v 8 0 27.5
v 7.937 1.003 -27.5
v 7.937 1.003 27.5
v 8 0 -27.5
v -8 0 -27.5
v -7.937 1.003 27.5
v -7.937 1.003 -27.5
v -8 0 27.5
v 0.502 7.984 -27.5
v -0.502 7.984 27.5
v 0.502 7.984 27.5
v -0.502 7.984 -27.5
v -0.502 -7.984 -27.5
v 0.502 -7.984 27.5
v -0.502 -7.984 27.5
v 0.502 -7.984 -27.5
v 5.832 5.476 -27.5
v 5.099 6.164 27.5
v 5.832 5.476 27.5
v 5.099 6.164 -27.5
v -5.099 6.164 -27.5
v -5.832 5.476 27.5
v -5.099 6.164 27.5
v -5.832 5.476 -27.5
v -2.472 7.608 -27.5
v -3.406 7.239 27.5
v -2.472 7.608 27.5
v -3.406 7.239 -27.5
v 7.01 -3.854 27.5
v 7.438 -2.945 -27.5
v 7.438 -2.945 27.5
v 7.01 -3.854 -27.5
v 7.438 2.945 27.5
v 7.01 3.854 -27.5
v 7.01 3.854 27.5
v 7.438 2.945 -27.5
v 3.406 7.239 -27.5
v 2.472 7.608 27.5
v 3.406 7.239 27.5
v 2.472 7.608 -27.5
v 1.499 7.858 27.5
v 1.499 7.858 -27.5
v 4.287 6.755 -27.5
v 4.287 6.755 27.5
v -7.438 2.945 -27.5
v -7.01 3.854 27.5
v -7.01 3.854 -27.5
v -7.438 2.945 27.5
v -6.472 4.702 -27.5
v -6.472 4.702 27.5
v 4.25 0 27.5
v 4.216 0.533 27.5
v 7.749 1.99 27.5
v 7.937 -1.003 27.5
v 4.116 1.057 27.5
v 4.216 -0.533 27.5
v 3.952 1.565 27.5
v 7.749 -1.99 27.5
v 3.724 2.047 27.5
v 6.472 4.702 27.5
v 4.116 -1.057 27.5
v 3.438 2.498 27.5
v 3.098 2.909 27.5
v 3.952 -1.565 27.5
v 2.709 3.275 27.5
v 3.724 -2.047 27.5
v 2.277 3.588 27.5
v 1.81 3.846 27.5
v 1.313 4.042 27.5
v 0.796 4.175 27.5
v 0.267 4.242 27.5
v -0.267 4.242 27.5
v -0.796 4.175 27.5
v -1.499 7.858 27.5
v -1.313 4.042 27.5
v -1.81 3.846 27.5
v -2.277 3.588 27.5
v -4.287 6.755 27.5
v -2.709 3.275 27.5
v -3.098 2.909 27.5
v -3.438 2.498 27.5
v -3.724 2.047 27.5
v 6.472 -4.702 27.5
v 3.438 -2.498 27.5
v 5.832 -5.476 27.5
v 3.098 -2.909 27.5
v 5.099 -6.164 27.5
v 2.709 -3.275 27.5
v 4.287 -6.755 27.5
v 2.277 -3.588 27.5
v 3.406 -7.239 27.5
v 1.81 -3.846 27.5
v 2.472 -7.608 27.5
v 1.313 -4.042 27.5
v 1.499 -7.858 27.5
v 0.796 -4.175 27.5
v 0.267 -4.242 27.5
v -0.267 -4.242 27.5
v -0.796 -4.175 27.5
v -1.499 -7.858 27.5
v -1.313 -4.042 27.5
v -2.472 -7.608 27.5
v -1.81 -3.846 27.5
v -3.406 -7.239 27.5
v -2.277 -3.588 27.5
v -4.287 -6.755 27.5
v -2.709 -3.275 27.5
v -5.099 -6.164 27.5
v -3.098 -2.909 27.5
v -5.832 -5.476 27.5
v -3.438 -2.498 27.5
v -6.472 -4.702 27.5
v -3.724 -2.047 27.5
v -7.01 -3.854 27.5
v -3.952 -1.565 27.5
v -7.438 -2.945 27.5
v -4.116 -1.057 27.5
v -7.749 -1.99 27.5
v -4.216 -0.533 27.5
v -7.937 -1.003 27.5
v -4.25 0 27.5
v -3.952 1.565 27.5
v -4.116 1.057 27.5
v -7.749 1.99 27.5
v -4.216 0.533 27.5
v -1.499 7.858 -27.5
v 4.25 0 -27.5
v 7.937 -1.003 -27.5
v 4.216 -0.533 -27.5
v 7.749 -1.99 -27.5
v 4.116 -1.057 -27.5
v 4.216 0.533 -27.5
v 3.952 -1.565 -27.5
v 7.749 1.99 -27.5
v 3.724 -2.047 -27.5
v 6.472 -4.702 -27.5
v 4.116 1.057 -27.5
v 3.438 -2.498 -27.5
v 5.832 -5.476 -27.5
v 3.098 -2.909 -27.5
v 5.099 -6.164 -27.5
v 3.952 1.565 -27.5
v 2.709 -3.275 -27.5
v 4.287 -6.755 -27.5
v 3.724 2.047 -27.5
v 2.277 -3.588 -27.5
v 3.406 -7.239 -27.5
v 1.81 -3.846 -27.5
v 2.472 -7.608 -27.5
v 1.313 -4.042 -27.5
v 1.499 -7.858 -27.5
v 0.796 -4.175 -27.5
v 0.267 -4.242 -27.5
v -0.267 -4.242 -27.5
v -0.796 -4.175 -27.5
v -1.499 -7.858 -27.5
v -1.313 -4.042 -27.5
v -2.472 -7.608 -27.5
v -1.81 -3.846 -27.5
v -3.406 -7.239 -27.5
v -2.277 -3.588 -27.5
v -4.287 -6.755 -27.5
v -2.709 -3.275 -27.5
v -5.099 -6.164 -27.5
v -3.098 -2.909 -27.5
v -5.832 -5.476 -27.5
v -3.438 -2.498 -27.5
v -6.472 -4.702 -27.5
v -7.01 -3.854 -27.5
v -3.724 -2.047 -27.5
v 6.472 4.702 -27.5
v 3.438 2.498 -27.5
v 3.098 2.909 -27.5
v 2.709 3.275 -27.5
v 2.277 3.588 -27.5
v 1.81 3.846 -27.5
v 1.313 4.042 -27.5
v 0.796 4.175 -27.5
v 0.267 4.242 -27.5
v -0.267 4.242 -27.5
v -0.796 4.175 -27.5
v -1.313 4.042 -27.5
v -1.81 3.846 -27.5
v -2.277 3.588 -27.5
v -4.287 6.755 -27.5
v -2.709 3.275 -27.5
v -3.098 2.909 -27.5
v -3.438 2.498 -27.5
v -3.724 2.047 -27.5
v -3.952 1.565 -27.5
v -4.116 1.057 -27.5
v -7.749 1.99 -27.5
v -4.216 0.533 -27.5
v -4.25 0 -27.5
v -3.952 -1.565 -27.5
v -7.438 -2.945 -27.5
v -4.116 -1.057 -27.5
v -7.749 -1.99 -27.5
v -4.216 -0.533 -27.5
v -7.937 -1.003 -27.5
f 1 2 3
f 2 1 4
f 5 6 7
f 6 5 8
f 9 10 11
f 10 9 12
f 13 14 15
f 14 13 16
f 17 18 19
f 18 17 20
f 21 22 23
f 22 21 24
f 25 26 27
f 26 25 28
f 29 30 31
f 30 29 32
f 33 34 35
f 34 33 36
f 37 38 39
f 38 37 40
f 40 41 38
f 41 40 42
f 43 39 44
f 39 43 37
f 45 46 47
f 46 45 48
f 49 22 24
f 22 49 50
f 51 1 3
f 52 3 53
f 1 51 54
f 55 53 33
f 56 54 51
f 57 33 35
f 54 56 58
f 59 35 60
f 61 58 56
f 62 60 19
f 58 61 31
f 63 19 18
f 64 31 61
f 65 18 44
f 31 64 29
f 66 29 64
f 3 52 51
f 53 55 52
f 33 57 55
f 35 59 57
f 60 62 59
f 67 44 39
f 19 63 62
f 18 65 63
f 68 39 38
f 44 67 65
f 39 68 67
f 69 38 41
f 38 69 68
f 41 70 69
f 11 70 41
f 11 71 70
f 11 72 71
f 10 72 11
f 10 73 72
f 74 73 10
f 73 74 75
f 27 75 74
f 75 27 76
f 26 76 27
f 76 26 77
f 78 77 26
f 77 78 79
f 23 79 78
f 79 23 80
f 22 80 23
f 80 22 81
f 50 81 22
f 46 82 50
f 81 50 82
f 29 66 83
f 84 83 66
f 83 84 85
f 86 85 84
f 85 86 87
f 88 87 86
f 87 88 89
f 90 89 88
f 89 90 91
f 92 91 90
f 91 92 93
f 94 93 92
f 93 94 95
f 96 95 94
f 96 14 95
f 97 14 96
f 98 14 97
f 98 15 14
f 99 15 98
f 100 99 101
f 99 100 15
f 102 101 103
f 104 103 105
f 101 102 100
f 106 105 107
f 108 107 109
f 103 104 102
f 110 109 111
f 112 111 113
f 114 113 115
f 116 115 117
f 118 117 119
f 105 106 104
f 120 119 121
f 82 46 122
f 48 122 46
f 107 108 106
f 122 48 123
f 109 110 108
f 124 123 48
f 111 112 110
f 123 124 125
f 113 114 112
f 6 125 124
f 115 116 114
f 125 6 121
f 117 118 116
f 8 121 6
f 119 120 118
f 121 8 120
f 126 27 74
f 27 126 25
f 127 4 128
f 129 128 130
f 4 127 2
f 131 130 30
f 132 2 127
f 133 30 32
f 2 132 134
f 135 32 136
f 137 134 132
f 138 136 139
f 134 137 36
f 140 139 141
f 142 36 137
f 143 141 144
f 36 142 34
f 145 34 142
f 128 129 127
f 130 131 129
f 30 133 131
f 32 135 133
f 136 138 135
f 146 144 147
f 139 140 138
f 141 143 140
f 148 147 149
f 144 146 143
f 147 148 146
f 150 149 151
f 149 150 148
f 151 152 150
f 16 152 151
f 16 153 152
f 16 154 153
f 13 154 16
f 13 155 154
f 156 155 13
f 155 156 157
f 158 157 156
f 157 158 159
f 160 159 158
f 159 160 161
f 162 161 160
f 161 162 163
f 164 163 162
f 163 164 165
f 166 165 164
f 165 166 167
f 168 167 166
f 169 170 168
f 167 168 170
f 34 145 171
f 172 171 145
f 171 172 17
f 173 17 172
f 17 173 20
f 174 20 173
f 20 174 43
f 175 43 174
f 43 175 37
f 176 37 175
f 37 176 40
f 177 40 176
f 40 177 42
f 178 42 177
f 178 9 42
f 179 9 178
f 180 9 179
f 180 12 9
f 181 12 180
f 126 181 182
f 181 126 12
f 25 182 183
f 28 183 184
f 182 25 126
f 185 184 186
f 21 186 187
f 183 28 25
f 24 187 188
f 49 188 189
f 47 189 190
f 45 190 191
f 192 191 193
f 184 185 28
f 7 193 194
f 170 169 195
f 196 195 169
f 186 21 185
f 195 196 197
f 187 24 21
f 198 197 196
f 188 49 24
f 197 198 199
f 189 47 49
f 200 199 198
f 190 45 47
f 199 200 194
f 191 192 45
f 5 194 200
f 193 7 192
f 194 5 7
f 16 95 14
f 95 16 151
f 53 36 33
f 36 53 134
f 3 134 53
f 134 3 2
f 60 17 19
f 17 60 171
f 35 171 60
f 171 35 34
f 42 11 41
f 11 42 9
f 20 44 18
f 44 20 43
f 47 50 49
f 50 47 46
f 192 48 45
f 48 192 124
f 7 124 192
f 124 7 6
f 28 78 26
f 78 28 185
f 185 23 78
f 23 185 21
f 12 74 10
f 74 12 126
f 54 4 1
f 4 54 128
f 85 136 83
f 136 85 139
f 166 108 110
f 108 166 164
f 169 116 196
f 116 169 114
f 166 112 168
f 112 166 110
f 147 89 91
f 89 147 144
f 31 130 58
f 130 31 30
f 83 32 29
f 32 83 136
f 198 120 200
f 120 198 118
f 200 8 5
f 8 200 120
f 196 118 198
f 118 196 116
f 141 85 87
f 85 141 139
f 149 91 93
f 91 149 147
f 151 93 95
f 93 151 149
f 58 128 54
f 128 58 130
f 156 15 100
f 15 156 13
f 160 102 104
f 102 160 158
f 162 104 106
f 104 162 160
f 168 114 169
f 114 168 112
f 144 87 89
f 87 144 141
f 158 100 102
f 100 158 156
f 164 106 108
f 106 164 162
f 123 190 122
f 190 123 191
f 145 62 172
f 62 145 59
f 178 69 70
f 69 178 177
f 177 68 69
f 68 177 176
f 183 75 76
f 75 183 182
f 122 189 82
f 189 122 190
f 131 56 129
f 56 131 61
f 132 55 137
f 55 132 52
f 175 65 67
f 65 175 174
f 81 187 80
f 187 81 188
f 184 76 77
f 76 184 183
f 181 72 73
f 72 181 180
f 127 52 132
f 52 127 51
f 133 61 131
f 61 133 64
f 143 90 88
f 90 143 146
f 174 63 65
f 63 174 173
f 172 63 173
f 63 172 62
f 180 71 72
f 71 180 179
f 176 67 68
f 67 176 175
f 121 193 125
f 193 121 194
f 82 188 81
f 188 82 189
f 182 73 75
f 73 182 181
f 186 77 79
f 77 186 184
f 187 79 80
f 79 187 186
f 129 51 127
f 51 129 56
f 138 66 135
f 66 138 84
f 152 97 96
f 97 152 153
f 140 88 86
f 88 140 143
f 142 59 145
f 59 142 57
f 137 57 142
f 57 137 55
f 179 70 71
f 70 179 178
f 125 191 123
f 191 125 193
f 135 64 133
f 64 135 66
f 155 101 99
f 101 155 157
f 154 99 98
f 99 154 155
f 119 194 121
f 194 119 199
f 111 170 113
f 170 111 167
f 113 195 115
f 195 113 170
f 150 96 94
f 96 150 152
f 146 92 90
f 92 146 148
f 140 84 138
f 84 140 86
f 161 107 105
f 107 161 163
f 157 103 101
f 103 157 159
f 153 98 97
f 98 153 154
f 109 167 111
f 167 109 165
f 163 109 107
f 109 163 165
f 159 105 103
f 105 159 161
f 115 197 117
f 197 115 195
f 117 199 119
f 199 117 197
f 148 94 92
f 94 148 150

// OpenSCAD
$fn = 50;


difference() {
	union() {
		translate(v = [0, 0, -27.5000000000]) {
			cylinder(h = 55, r = 8.0000000000);
		}
	}
	union() {
		translate(v = [0, 0, -100.0000000000]) {
			cylinder(h = 200, r = 4.2500000000);
		}
	}
}
